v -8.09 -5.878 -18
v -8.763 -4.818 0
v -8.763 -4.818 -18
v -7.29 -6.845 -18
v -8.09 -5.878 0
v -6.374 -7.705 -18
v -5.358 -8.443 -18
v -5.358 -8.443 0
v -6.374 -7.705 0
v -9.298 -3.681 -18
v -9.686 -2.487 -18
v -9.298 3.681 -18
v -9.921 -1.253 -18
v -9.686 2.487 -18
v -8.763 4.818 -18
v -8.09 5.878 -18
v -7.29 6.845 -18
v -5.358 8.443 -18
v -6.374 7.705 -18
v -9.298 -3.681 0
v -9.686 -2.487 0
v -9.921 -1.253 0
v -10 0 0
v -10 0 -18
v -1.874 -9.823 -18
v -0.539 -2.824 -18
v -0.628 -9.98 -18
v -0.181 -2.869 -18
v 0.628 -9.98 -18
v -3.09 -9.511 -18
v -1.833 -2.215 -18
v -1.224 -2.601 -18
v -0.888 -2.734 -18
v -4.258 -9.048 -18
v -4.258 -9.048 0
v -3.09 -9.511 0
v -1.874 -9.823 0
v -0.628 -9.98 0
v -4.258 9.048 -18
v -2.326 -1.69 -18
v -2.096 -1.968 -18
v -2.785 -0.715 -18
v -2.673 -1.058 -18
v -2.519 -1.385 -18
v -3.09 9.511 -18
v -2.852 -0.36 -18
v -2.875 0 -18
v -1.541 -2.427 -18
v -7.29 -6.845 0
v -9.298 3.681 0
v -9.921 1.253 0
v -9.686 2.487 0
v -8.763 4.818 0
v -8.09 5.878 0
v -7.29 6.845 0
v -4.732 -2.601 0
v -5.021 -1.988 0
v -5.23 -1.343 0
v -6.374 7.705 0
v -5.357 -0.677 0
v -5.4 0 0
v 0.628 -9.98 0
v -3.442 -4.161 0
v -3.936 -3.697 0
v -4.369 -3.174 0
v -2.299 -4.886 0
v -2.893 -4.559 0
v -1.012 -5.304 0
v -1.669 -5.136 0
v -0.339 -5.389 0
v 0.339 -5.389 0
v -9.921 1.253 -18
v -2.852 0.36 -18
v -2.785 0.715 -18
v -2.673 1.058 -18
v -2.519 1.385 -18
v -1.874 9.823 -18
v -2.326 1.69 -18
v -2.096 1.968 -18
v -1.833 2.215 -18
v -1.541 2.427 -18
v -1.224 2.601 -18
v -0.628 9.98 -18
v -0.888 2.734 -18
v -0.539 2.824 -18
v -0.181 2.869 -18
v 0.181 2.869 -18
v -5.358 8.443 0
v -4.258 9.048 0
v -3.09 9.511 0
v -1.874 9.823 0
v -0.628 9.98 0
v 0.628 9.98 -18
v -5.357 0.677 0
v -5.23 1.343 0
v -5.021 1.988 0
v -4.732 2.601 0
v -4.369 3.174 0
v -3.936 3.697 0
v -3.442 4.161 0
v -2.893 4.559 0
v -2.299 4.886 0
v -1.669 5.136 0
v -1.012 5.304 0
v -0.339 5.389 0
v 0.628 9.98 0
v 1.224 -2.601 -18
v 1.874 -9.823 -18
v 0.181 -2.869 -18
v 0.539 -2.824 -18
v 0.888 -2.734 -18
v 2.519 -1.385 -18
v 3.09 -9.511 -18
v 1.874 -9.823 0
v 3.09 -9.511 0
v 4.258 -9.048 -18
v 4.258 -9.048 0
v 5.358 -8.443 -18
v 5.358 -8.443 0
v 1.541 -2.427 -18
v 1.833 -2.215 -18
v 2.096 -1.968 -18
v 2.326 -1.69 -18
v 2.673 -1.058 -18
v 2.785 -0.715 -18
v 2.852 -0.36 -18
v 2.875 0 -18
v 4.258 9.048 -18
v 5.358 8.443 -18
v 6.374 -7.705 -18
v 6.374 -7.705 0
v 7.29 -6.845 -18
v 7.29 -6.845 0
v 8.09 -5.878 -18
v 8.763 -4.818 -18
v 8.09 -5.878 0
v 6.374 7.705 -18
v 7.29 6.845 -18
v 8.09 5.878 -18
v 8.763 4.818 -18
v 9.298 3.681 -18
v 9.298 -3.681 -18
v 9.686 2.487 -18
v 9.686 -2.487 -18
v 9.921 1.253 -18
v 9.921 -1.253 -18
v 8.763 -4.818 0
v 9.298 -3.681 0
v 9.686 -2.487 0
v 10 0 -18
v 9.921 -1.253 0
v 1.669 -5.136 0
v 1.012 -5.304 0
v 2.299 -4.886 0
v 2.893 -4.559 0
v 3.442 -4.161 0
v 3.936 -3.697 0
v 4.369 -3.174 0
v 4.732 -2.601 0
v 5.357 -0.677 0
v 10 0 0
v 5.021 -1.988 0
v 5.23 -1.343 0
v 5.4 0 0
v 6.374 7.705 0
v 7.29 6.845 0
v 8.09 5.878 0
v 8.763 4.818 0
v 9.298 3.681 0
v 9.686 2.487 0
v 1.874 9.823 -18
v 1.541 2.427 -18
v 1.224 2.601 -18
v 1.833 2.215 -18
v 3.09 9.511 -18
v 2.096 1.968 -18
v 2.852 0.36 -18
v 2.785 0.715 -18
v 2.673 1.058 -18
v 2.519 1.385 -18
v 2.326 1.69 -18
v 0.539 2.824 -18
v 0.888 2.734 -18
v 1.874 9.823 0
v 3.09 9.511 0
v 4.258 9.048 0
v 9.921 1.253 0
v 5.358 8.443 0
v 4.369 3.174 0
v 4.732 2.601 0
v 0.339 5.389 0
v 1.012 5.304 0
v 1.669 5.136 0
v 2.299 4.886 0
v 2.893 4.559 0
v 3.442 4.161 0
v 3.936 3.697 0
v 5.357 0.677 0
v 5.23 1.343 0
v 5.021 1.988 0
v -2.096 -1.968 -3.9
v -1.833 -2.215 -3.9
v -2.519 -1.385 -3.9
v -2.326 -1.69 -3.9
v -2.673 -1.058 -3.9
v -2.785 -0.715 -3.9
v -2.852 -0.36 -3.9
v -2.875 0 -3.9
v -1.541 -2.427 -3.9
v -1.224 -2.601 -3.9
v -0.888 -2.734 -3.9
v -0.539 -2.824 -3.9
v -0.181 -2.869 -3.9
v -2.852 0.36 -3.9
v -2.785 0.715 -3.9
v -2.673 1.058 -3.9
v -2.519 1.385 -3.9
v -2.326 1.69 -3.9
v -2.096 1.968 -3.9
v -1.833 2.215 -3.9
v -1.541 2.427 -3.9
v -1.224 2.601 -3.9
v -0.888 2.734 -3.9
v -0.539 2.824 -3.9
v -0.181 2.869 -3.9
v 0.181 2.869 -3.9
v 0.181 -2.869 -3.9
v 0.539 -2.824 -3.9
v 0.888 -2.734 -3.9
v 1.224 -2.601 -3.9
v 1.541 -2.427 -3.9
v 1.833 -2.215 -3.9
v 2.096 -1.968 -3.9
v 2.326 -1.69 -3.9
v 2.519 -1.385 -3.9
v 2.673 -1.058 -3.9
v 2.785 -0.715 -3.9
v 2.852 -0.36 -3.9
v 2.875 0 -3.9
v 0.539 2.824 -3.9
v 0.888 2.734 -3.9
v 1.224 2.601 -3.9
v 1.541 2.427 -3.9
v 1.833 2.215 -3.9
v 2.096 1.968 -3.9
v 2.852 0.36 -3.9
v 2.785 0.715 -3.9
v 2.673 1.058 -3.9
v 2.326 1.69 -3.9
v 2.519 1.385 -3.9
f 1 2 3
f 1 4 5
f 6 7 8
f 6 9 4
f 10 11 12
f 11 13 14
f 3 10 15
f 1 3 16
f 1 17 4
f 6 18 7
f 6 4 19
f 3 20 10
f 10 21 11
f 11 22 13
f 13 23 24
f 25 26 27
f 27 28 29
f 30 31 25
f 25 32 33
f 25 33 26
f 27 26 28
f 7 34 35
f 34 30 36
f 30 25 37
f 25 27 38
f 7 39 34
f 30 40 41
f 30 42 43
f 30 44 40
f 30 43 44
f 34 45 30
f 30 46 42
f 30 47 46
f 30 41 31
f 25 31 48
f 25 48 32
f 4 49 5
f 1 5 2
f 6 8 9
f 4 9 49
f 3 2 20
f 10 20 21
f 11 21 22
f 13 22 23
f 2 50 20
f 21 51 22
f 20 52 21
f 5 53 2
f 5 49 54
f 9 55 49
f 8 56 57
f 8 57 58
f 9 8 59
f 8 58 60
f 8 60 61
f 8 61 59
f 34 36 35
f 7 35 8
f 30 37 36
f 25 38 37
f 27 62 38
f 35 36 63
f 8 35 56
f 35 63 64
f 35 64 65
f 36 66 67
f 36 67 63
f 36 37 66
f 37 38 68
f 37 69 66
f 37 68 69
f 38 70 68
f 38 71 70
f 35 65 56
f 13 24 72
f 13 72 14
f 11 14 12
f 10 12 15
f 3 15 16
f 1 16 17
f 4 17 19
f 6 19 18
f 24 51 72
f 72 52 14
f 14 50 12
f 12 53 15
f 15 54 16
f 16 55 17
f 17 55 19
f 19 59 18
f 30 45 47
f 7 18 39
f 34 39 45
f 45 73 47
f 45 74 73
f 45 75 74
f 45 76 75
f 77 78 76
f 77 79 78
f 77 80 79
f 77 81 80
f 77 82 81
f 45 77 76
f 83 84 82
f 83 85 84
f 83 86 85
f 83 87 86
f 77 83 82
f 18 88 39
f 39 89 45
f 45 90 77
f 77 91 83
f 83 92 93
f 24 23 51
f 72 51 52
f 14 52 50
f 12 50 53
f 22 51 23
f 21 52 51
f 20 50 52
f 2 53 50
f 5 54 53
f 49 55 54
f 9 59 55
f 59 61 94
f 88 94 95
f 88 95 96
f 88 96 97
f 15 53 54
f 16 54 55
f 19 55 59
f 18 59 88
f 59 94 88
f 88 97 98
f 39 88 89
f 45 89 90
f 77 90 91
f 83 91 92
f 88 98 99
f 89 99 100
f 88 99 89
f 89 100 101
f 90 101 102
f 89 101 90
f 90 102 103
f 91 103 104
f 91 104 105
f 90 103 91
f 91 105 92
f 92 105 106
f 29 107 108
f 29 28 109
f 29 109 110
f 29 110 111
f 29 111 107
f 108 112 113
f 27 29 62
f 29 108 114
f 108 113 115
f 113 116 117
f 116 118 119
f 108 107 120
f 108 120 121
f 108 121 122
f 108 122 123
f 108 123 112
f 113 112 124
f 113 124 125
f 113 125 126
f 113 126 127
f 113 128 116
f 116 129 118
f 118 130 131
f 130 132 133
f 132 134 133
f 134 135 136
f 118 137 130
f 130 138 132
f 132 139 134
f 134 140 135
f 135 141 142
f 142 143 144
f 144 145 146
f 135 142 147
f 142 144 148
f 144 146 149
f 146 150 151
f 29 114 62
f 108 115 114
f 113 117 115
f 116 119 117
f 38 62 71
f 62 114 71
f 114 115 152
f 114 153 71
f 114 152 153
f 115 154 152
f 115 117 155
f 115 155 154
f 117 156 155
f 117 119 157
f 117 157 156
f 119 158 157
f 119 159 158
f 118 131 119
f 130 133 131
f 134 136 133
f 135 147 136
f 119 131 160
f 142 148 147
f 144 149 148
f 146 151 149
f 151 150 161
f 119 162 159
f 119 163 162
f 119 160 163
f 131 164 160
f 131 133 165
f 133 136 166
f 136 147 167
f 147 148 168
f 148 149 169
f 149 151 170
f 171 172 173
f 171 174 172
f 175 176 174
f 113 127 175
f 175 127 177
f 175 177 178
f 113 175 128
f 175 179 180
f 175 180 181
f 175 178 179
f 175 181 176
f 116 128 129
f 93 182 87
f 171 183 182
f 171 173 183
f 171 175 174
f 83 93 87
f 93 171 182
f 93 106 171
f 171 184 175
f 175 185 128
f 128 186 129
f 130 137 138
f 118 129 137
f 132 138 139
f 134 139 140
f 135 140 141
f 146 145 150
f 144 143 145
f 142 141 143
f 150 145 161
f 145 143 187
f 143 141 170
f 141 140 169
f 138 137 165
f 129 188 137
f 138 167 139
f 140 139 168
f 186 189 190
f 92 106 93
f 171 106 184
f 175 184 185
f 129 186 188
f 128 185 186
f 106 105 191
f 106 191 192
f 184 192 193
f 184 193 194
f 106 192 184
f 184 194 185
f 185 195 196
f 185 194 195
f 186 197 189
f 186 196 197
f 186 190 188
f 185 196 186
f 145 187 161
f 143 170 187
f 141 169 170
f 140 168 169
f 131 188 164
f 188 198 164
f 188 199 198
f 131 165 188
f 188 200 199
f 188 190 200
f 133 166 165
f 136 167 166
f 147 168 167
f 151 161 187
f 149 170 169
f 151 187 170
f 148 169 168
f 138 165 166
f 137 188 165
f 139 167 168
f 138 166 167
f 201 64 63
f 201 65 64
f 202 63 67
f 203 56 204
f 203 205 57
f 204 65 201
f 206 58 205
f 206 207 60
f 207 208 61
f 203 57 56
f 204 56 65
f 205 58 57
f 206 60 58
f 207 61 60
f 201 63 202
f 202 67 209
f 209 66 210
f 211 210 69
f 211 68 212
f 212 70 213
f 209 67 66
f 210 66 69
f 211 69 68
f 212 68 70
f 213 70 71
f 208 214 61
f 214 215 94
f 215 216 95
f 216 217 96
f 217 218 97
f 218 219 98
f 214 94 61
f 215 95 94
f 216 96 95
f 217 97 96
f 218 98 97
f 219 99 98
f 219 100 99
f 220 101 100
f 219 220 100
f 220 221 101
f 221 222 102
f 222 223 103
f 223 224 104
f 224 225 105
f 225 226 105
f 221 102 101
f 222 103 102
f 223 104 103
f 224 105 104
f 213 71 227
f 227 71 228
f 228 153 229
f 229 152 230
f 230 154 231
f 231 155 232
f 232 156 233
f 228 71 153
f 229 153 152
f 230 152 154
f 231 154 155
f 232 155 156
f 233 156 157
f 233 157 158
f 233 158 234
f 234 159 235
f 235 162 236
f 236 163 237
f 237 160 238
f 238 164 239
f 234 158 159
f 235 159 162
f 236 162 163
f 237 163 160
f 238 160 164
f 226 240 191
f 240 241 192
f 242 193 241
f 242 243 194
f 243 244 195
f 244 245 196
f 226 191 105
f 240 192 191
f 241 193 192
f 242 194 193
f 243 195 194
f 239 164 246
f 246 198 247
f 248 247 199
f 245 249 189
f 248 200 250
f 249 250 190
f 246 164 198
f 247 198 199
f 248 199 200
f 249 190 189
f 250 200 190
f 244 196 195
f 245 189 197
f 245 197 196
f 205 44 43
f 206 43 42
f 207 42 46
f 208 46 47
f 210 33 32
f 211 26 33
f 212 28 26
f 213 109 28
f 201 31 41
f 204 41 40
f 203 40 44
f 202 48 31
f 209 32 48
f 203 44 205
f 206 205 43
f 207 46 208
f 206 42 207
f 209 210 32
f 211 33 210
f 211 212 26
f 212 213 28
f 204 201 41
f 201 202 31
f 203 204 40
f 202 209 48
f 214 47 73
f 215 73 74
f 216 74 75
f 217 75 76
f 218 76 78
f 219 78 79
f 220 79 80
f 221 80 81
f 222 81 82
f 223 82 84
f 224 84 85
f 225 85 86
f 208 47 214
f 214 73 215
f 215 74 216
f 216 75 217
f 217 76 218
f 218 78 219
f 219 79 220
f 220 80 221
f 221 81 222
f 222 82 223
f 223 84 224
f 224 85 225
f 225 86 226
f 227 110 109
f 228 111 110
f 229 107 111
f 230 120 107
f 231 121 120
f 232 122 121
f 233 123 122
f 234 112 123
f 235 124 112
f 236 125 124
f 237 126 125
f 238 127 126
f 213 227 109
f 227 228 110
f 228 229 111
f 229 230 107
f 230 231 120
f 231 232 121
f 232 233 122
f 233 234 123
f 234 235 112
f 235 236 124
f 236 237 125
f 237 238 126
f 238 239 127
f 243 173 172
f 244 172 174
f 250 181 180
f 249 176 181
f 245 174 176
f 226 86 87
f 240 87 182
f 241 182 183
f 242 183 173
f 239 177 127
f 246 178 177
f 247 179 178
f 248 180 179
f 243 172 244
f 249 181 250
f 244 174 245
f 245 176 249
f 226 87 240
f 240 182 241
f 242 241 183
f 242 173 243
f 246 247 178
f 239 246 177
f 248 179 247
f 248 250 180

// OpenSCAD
$fn = 50;

difference() {
	union() {
		translate(v = [0, 0, -18.0]) {
			cylinder(h = 18, r = 10.0);
		}
		#translate(v = [0, 0, -21.0]) {
			cylinder(h = 21, r = 2.875);
		}
	}
	union() {
		translate(v = [0, 0, 0]) {
			rotate(a = [0, 0, 0]) {
				difference() {
					union() {
						translate(v = [0, 0, -21.0]) {
							cylinder(h = 21, r = 2.6);
						}
						translate(v = [0, 0, -3.9]) {
							cylinder(h = 3.9, r1 = 2.875, r2 = 5.4);
						}
						translate(v = [0, 0, -21.0]) {
							cylinder(h = 21, r = 2.875);
						}
						translate(v = [0, 0, -21.0]) {
							cylinder(h = 21, r = 2.6);
						}
					}
					union();
				}
			}
		}
	}
}
